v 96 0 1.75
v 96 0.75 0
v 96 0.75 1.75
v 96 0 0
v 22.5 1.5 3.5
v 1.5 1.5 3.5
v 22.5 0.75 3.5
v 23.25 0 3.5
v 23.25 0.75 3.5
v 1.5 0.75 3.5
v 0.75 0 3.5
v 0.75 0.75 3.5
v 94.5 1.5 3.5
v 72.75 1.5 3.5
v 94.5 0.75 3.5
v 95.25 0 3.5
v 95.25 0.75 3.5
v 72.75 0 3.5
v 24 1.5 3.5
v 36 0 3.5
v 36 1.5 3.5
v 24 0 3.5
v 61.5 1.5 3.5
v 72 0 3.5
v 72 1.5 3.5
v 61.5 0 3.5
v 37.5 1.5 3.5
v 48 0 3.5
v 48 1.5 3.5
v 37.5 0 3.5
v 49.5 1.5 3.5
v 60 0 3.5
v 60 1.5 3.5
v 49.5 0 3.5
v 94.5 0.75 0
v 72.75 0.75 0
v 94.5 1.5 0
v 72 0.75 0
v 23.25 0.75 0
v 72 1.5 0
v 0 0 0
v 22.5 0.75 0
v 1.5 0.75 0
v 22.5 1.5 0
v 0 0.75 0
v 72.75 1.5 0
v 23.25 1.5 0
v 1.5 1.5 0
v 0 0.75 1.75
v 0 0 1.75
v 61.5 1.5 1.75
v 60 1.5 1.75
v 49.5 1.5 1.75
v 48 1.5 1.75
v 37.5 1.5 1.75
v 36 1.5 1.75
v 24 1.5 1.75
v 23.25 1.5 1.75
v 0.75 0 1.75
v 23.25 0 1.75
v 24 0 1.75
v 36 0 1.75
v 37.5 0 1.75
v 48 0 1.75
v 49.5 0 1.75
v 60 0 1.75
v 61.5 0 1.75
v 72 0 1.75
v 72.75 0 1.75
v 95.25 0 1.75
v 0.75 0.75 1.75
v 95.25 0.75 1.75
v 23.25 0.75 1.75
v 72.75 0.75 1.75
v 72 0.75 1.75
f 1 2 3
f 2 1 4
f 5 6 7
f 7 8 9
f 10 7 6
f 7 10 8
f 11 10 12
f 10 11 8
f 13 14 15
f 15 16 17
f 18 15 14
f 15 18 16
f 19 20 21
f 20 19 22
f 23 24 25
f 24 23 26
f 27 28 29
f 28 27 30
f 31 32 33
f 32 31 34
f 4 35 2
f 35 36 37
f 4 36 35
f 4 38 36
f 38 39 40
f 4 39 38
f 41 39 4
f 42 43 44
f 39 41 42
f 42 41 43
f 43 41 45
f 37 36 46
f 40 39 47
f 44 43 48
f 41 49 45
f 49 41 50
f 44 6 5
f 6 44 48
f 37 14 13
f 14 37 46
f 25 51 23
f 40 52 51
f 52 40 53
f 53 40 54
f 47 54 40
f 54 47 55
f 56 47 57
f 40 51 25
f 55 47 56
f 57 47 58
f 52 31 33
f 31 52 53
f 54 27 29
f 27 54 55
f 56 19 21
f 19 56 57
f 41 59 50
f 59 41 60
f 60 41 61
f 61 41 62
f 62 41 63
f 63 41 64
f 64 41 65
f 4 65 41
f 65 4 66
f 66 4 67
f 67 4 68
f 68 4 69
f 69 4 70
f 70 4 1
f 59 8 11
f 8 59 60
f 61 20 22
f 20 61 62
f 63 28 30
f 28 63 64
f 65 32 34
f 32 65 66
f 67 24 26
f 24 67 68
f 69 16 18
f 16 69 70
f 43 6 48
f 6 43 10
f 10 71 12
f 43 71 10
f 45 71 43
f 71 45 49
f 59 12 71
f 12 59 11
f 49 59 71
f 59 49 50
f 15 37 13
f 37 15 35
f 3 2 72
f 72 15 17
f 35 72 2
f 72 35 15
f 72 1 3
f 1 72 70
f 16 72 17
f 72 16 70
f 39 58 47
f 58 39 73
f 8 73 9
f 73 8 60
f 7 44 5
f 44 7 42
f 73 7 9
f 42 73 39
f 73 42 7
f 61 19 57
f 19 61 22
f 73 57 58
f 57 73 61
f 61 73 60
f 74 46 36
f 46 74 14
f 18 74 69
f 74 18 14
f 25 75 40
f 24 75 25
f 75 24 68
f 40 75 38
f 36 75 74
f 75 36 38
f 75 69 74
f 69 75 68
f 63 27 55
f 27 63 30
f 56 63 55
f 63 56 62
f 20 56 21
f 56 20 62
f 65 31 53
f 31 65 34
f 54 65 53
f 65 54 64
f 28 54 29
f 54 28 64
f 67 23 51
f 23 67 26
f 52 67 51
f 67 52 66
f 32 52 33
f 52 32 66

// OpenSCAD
// file: ../config.scad
// height of desktop and shelves
desktop_shelf_color="Sienna";
desktop_height=31;
desktop_thickness=1;
table_width=96;
table_depth=36;
shelf_thickness=0.5;
shelf_height=10;
top_shelf_height=72.5;

// Legs
leg_color="BurlyWood";
front_leg_length=desktop_height;
rear_leg_length=top_shelf_height-shelf_thickness;
leg_timber_width=1.5;
leg_timber_depth=3.5;
center_leg_timber_width=1.5;
center_leg_timber_depth=3.5;
center_leg_setback=24;

// Plates
front_rear_strut_color="silver";
side_strut_color="blue";
strut_timber_depth=1.5;
strut_timber_height=3.5;
top_shelf_timber_depth=1.5;
top_shelf_timber_height=3.5;
// file: ../components/long_horizontal_plate_desktop.scad
module long_horizontal_plate_desktop()
{
    include <../config.scad>
    echo(str("BOM ITEM: long_horizontal_plate_desktop"));
    render() { // see note in README about rendering
        difference() {
            cube([table_width,strut_timber_depth,strut_timber_height],false);
            // Left cutout
            translate([0,leg_timber_width/2,0])
            {
                cube([leg_timber_width,leg_timber_width/2,strut_timber_height],false);
            }
            // Left top cutout
            translate([0,0,strut_timber_height/2]){
                cube([leg_timber_width/2,leg_timber_width/2,strut_timber_height/2]);
            }
            // Right cutout
            translate([table_width-leg_timber_width,leg_timber_width/2,0])
            {
                cube([leg_timber_width,leg_timber_width/2,strut_timber_height],false);
            }
            // Right top cutout
            translate([table_width-(leg_timber_width/2),0,strut_timber_height/2]){
                cube([leg_timber_width/2,leg_timber_width/2,strut_timber_height/2]);
            }
            // Left inside cutout
            translate([(table_width/4)-leg_timber_width,leg_timber_width/2,0])
            {
                cube([leg_timber_width/2,leg_timber_width/2,strut_timber_height],false);
            }
            // Left inside top cutout
            translate([(table_width/4)-(leg_timber_width/2),0,strut_timber_height/2])
            {
                cube([leg_timber_width/2,strut_timber_depth,strut_timber_height/2],false);
            }
            // Right inside cutout
            translate([((table_width/4)*3),leg_timber_width/2,0])
            {
                cube([leg_timber_width/2,leg_timber_width/2,strut_timber_height],false);
            }
            // Right inside top cutout
            translate([((table_width/4)*3),0,strut_timber_height/2])
            {
                cube([leg_timber_width/2,strut_timber_depth,strut_timber_height/2],false);
            }
            // Left desktop support cutout
            translate([((table_width/4)*2)-(table_width/8),0,strut_timber_height/2])
            {
                cube([strut_timber_depth,strut_timber_depth,strut_timber_height/2],false);
            }
            // Center desktop support cutout
            translate([(table_width/4)*2,0,strut_timber_height/2])
            {
                cube([strut_timber_depth,strut_timber_depth,strut_timber_height/2],false);
            }
            // Right desktop support cutout
            translate([((table_width/4)*2)+(table_width/8),0,strut_timber_height/2])
            {
                cube([strut_timber_depth,strut_timber_depth,strut_timber_height/2],false);
            }
        }
    }
}
// main file
use <../components/long_horizontal_plate_desktop.scad>

long_horizontal_plate_desktop();
